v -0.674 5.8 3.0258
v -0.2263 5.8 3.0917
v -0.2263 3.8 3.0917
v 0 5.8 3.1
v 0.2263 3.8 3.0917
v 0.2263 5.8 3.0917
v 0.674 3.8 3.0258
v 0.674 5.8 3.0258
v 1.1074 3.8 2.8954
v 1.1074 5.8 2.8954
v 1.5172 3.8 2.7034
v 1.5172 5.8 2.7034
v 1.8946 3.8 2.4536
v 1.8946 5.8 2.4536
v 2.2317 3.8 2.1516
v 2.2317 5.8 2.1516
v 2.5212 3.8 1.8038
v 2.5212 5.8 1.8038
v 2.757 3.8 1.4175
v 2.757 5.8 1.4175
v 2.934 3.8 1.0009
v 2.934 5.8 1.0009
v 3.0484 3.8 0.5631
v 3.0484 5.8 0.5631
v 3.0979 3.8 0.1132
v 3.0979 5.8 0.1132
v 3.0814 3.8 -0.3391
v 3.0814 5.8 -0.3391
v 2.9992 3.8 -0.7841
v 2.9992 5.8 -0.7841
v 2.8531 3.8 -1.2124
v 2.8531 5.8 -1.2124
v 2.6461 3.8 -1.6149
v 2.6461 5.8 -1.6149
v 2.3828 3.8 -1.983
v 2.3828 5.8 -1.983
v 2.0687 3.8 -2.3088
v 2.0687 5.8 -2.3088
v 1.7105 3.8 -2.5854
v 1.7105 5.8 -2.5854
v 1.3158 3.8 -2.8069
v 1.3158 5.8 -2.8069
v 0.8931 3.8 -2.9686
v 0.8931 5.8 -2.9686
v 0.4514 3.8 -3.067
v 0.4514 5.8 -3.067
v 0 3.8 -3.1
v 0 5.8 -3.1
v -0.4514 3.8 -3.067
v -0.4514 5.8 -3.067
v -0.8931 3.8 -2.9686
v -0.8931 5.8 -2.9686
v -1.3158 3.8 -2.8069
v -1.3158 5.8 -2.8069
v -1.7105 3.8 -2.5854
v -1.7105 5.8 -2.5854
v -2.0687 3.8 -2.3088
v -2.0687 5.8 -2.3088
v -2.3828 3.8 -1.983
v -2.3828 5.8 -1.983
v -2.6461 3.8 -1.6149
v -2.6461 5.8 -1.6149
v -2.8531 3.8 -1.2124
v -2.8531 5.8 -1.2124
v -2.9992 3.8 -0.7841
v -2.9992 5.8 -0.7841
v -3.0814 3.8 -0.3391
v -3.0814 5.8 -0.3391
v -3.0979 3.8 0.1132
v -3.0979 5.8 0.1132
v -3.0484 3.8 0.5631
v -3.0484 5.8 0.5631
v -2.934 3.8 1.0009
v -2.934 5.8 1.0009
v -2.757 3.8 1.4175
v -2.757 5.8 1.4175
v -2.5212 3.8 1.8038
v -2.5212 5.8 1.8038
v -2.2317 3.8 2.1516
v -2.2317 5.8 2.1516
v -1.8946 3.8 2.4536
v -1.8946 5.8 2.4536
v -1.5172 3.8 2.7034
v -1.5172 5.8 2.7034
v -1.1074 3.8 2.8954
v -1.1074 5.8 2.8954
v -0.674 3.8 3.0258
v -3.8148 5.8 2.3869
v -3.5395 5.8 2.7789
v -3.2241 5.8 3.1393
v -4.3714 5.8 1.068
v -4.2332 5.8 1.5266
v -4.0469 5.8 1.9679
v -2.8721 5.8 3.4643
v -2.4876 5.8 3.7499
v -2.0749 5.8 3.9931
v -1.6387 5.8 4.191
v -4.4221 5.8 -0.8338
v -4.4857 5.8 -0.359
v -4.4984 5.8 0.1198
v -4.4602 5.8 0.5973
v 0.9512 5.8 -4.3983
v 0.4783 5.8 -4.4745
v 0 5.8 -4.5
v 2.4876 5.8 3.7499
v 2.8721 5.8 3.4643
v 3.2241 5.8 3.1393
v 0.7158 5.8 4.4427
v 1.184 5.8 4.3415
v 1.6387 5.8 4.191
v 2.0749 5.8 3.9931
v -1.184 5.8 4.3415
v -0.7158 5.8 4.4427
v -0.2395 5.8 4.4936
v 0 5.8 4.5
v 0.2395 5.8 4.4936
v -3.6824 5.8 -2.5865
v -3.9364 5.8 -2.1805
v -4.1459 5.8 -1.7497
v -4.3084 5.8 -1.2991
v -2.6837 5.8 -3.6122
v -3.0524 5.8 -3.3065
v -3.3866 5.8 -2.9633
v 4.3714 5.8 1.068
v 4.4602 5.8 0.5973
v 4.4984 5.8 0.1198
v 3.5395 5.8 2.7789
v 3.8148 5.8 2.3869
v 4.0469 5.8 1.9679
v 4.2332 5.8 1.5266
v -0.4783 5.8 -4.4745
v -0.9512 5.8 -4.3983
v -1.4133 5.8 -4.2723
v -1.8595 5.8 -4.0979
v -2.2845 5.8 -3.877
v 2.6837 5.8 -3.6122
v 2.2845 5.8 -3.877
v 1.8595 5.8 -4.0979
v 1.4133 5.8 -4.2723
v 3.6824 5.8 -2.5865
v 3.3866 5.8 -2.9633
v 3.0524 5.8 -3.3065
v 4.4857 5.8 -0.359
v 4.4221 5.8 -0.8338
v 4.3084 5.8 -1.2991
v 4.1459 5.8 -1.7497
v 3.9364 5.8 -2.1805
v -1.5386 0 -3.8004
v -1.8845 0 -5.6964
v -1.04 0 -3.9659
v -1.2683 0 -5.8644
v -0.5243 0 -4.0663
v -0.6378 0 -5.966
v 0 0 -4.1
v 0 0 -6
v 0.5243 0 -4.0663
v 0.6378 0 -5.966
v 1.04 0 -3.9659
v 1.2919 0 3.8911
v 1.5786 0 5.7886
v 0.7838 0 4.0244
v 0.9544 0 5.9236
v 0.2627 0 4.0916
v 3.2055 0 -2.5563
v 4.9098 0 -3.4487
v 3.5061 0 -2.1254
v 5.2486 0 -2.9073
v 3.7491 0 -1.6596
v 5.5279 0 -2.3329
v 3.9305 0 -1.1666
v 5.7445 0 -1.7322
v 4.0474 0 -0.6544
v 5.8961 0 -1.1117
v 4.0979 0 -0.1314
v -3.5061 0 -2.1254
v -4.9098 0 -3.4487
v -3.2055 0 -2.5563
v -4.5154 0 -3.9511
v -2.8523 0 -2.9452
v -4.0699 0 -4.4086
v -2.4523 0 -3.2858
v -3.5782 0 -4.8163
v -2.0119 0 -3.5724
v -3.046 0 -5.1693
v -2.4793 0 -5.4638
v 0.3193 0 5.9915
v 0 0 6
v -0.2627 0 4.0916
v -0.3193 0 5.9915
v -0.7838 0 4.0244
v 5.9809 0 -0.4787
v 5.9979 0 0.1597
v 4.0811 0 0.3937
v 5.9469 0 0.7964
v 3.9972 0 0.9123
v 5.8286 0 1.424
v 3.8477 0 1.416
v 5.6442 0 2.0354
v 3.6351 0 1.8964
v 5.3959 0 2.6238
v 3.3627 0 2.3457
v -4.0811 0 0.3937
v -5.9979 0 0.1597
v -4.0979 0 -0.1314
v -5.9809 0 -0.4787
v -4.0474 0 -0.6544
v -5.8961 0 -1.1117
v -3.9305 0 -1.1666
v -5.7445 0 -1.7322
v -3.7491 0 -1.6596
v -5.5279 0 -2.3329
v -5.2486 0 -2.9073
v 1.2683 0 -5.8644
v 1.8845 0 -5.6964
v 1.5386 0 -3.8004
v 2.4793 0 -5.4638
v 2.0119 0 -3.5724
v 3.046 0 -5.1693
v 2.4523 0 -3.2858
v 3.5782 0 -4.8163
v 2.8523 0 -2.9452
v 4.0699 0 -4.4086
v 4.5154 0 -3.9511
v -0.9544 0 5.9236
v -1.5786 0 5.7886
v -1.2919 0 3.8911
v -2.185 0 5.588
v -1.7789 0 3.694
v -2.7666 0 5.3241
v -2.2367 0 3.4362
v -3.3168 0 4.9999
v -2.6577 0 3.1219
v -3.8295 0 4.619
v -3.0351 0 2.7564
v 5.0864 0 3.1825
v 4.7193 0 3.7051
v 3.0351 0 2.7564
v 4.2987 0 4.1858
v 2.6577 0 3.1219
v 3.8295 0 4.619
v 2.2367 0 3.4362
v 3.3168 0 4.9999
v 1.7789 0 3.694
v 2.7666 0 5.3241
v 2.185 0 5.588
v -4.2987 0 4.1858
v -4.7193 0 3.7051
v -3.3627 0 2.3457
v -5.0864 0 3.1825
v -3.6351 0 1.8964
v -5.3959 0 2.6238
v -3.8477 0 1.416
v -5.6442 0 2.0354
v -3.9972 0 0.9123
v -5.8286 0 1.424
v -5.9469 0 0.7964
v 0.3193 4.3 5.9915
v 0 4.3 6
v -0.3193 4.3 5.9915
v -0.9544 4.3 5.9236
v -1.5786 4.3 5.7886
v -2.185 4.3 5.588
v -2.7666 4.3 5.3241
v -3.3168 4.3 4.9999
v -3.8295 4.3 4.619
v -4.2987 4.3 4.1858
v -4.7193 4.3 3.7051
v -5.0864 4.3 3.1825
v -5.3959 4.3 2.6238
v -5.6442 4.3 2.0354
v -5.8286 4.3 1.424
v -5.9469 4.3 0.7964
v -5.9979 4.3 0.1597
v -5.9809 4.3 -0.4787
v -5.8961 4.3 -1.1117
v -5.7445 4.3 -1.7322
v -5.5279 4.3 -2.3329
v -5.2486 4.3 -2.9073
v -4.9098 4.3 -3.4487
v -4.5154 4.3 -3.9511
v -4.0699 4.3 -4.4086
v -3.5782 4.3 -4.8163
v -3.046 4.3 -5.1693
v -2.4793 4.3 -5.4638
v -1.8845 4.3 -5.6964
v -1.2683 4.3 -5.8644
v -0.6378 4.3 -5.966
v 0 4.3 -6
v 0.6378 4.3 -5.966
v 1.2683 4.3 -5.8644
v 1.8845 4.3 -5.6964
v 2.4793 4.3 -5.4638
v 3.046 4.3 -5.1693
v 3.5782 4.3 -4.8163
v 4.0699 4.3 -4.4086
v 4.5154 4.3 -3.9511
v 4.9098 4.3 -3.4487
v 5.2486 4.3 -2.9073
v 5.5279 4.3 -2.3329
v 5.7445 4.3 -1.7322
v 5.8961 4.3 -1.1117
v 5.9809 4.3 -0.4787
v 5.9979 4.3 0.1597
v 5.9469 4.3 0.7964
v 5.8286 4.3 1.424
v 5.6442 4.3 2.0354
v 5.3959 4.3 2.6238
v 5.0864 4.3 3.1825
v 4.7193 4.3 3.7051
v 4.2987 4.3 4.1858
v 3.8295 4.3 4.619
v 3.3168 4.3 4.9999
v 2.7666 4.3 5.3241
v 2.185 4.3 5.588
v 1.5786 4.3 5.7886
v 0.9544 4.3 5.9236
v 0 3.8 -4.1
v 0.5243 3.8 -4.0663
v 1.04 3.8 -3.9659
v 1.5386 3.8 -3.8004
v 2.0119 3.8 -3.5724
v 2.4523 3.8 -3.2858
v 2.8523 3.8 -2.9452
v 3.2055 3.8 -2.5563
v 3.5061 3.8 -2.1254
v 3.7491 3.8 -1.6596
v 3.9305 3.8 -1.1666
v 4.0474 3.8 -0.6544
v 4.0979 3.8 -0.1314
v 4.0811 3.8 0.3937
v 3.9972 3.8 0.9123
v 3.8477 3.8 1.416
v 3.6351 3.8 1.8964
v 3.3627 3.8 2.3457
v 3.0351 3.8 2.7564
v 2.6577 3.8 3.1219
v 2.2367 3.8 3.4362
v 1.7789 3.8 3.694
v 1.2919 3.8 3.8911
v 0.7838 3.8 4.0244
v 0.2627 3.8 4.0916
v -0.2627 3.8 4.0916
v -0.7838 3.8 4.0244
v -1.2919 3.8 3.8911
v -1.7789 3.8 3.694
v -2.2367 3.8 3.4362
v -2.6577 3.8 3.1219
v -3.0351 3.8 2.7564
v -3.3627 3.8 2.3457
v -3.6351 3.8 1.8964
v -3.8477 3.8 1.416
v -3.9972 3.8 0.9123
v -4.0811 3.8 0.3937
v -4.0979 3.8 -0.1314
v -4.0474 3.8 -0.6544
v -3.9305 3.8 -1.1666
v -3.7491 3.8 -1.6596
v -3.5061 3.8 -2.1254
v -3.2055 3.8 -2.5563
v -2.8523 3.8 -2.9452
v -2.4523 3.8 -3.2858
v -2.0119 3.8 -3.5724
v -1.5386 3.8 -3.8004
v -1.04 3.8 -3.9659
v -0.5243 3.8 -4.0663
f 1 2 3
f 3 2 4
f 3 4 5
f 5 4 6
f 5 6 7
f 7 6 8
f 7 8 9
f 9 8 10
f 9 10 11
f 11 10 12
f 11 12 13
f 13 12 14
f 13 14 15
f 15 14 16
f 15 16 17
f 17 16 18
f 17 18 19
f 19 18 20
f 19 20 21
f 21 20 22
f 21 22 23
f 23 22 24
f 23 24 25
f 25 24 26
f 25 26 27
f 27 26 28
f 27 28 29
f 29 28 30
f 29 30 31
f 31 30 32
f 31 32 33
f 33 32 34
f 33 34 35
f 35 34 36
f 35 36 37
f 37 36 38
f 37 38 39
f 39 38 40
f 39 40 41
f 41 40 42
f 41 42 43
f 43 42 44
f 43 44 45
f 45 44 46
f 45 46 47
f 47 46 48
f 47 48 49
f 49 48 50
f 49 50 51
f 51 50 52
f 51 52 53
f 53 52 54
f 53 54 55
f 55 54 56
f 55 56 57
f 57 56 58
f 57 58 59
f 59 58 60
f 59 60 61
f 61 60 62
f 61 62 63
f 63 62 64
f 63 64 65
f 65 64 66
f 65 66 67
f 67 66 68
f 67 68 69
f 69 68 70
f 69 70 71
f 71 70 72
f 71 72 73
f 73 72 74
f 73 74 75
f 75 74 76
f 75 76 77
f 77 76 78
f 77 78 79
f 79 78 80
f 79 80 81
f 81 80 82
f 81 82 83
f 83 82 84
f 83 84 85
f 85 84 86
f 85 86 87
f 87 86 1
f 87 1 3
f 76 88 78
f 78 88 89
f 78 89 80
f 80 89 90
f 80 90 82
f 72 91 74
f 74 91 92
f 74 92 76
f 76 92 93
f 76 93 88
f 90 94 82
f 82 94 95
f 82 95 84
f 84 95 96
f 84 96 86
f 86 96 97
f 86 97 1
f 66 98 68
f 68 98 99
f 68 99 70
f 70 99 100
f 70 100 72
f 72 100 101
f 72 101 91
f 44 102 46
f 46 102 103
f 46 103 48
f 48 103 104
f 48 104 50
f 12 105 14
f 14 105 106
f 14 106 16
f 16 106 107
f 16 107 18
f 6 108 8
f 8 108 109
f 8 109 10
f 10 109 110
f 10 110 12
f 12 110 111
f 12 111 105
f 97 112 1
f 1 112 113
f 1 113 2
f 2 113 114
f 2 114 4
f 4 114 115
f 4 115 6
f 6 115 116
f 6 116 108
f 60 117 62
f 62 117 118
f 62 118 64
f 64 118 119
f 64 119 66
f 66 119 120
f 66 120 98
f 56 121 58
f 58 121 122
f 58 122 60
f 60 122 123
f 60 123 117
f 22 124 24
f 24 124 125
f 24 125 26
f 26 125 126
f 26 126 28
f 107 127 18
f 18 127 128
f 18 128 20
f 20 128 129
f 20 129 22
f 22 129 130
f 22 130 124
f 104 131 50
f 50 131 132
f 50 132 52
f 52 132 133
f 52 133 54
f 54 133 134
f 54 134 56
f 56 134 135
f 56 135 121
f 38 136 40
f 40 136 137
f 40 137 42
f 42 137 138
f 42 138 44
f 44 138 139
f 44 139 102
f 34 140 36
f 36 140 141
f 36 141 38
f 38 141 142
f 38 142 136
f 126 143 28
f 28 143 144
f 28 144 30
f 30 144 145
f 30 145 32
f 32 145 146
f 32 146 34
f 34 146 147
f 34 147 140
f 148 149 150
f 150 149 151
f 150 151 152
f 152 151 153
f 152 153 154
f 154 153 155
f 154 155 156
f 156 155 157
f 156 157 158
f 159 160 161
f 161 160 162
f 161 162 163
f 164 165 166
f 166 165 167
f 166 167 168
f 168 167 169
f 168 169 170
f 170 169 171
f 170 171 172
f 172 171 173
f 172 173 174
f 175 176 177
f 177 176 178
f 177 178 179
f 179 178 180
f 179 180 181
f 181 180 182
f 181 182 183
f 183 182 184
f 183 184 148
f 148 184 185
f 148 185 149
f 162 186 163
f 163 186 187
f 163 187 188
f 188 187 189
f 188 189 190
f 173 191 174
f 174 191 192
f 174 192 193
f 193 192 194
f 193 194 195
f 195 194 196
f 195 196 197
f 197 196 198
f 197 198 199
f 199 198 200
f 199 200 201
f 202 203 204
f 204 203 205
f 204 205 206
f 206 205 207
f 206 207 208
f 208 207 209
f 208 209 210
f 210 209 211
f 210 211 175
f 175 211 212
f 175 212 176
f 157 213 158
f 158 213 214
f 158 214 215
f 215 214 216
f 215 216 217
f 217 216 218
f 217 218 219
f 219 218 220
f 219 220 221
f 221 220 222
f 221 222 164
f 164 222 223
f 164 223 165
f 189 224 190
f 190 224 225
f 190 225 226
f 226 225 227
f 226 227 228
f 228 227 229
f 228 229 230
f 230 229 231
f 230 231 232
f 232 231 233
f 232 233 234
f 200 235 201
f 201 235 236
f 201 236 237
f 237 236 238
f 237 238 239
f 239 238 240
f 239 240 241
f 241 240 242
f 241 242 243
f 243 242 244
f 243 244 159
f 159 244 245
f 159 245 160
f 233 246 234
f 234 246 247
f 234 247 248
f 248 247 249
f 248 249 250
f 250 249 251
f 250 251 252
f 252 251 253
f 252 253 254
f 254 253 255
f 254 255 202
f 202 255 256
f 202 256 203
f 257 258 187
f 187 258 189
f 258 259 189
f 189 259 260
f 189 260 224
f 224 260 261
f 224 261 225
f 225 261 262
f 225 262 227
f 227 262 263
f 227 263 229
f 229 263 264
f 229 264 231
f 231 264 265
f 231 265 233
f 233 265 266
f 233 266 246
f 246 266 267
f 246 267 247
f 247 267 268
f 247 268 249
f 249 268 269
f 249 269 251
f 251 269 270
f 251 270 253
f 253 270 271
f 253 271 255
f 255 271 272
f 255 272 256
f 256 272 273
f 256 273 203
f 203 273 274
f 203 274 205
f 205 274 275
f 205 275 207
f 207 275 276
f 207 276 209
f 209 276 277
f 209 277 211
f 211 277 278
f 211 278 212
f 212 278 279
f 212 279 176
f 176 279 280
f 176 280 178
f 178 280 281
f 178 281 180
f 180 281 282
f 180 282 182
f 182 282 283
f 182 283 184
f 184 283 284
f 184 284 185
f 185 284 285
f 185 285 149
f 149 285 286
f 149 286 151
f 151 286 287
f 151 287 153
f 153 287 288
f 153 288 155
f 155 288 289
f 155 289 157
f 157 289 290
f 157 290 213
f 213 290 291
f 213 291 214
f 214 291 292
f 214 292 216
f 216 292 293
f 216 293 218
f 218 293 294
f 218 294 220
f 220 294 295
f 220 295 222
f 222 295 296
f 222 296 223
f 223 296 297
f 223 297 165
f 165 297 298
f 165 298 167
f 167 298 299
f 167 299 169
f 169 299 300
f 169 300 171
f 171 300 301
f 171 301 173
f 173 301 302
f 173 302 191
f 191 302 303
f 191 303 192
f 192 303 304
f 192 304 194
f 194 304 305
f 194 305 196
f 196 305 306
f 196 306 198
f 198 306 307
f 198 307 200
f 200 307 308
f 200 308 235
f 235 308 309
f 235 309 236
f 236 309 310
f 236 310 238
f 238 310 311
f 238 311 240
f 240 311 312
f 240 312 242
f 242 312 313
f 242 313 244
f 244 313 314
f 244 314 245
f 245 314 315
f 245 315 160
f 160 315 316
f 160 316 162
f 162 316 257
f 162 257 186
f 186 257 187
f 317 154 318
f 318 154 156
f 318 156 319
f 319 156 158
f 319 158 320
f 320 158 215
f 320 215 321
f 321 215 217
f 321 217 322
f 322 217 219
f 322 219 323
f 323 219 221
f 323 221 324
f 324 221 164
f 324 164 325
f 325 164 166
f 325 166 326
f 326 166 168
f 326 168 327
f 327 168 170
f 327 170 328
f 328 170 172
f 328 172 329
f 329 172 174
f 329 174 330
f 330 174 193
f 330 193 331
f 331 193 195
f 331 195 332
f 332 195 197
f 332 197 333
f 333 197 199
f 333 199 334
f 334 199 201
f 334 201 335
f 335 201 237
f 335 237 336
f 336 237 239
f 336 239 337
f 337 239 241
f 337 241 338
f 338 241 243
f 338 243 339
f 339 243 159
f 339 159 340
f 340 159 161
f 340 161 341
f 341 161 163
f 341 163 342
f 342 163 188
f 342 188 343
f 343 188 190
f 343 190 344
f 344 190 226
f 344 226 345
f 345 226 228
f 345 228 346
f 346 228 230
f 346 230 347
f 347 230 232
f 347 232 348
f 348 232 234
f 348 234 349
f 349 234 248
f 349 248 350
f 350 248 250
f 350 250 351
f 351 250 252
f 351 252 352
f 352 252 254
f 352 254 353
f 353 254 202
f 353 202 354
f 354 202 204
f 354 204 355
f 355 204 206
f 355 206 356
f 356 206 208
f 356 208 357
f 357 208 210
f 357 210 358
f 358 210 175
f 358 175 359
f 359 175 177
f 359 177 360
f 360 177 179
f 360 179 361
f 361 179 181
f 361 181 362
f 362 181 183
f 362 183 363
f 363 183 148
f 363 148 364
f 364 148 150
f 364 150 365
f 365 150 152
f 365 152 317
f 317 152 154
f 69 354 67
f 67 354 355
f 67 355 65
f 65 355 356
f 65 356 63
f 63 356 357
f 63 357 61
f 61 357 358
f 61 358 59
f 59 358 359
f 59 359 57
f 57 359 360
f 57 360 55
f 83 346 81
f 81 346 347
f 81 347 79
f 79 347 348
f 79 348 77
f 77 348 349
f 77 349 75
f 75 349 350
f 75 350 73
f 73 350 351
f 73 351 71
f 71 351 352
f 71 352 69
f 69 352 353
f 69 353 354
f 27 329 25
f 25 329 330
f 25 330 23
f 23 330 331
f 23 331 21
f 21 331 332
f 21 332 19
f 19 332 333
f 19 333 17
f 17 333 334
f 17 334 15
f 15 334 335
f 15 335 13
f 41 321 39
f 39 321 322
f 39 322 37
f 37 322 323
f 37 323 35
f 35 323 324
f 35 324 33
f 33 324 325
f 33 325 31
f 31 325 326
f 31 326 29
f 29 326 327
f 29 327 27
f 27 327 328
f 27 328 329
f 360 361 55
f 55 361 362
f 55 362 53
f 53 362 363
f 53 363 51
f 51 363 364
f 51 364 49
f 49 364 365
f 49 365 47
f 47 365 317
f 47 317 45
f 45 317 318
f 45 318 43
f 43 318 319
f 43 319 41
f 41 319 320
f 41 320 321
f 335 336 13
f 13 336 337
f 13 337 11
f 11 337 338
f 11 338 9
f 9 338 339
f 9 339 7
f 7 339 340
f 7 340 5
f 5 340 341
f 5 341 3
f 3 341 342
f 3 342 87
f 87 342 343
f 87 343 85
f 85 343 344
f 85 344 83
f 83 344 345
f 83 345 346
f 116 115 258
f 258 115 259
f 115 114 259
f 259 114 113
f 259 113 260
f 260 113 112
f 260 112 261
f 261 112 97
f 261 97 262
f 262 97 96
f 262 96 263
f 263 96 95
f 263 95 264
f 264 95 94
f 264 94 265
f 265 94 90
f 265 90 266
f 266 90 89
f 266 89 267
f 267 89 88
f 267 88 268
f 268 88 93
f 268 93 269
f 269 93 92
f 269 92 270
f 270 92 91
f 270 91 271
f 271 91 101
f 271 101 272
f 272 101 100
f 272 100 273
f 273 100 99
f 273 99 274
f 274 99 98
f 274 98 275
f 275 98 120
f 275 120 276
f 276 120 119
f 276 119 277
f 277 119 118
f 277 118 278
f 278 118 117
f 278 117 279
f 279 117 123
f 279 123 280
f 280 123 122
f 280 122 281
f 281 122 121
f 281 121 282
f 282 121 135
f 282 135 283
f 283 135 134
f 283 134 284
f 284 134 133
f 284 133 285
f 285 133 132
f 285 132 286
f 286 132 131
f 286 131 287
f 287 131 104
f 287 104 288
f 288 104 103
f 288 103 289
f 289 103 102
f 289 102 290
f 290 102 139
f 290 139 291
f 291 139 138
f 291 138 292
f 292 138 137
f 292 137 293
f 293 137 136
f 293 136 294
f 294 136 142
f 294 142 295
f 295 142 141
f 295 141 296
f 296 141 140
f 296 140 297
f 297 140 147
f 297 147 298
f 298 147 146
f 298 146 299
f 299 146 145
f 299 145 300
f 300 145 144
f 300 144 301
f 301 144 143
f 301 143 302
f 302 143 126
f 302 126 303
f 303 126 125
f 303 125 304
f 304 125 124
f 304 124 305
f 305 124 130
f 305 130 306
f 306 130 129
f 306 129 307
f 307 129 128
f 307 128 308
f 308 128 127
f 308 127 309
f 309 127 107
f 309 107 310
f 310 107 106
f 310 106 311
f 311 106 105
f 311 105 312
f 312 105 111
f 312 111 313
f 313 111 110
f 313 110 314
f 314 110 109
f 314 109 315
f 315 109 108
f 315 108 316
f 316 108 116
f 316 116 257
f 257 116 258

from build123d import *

# Parameters (mm, degrees)
SKETCH1_R           = 6
SKETCH1_R_2         = 3.1
BOSS_EXTRUDE1_DEPTH = 5.8
SKETCH2_R           = 4.1
CUT_EXTRUDE1_DEPTH  = 3.8
CHAMFER1_SIZE       = 1.5


with BuildPart() as part:
    # Sketch1 → Boss-Extrude1 (new body)
    with BuildSketch(Plane(origin=(0, 0, 0), x_dir=(1, 0, 0), z_dir=(0, 1, 0))):
        with Locations(Location((0, 0, 0), (0, 0, 270))):
            Circle(SKETCH1_R)
        with Locations(Location((0, 0, 0), (0, 0, 270))):
            Circle(SKETCH1_R_2, mode=Mode.SUBTRACT)
    extrude(amount=BOSS_EXTRUDE1_DEPTH)

    # Sketch2 → Cut-Extrude1 (cut)
    with BuildSketch(Plane.XZ):
        with Locations(Location((0, 0, 0), (0, 0, 270))):
            Circle(SKETCH2_R)
    extrude(amount=-CUT_EXTRUDE1_DEPTH, mode=Mode.SUBTRACT)

    # Chamfer1
    chamfer1_edges = [part.edges().sort_by_distance(p)[0] for p in [
        (0, 5.8, -6),
    ]]
    chamfer(chamfer1_edges, length=CHAMFER1_SIZE)


solid = part.part
